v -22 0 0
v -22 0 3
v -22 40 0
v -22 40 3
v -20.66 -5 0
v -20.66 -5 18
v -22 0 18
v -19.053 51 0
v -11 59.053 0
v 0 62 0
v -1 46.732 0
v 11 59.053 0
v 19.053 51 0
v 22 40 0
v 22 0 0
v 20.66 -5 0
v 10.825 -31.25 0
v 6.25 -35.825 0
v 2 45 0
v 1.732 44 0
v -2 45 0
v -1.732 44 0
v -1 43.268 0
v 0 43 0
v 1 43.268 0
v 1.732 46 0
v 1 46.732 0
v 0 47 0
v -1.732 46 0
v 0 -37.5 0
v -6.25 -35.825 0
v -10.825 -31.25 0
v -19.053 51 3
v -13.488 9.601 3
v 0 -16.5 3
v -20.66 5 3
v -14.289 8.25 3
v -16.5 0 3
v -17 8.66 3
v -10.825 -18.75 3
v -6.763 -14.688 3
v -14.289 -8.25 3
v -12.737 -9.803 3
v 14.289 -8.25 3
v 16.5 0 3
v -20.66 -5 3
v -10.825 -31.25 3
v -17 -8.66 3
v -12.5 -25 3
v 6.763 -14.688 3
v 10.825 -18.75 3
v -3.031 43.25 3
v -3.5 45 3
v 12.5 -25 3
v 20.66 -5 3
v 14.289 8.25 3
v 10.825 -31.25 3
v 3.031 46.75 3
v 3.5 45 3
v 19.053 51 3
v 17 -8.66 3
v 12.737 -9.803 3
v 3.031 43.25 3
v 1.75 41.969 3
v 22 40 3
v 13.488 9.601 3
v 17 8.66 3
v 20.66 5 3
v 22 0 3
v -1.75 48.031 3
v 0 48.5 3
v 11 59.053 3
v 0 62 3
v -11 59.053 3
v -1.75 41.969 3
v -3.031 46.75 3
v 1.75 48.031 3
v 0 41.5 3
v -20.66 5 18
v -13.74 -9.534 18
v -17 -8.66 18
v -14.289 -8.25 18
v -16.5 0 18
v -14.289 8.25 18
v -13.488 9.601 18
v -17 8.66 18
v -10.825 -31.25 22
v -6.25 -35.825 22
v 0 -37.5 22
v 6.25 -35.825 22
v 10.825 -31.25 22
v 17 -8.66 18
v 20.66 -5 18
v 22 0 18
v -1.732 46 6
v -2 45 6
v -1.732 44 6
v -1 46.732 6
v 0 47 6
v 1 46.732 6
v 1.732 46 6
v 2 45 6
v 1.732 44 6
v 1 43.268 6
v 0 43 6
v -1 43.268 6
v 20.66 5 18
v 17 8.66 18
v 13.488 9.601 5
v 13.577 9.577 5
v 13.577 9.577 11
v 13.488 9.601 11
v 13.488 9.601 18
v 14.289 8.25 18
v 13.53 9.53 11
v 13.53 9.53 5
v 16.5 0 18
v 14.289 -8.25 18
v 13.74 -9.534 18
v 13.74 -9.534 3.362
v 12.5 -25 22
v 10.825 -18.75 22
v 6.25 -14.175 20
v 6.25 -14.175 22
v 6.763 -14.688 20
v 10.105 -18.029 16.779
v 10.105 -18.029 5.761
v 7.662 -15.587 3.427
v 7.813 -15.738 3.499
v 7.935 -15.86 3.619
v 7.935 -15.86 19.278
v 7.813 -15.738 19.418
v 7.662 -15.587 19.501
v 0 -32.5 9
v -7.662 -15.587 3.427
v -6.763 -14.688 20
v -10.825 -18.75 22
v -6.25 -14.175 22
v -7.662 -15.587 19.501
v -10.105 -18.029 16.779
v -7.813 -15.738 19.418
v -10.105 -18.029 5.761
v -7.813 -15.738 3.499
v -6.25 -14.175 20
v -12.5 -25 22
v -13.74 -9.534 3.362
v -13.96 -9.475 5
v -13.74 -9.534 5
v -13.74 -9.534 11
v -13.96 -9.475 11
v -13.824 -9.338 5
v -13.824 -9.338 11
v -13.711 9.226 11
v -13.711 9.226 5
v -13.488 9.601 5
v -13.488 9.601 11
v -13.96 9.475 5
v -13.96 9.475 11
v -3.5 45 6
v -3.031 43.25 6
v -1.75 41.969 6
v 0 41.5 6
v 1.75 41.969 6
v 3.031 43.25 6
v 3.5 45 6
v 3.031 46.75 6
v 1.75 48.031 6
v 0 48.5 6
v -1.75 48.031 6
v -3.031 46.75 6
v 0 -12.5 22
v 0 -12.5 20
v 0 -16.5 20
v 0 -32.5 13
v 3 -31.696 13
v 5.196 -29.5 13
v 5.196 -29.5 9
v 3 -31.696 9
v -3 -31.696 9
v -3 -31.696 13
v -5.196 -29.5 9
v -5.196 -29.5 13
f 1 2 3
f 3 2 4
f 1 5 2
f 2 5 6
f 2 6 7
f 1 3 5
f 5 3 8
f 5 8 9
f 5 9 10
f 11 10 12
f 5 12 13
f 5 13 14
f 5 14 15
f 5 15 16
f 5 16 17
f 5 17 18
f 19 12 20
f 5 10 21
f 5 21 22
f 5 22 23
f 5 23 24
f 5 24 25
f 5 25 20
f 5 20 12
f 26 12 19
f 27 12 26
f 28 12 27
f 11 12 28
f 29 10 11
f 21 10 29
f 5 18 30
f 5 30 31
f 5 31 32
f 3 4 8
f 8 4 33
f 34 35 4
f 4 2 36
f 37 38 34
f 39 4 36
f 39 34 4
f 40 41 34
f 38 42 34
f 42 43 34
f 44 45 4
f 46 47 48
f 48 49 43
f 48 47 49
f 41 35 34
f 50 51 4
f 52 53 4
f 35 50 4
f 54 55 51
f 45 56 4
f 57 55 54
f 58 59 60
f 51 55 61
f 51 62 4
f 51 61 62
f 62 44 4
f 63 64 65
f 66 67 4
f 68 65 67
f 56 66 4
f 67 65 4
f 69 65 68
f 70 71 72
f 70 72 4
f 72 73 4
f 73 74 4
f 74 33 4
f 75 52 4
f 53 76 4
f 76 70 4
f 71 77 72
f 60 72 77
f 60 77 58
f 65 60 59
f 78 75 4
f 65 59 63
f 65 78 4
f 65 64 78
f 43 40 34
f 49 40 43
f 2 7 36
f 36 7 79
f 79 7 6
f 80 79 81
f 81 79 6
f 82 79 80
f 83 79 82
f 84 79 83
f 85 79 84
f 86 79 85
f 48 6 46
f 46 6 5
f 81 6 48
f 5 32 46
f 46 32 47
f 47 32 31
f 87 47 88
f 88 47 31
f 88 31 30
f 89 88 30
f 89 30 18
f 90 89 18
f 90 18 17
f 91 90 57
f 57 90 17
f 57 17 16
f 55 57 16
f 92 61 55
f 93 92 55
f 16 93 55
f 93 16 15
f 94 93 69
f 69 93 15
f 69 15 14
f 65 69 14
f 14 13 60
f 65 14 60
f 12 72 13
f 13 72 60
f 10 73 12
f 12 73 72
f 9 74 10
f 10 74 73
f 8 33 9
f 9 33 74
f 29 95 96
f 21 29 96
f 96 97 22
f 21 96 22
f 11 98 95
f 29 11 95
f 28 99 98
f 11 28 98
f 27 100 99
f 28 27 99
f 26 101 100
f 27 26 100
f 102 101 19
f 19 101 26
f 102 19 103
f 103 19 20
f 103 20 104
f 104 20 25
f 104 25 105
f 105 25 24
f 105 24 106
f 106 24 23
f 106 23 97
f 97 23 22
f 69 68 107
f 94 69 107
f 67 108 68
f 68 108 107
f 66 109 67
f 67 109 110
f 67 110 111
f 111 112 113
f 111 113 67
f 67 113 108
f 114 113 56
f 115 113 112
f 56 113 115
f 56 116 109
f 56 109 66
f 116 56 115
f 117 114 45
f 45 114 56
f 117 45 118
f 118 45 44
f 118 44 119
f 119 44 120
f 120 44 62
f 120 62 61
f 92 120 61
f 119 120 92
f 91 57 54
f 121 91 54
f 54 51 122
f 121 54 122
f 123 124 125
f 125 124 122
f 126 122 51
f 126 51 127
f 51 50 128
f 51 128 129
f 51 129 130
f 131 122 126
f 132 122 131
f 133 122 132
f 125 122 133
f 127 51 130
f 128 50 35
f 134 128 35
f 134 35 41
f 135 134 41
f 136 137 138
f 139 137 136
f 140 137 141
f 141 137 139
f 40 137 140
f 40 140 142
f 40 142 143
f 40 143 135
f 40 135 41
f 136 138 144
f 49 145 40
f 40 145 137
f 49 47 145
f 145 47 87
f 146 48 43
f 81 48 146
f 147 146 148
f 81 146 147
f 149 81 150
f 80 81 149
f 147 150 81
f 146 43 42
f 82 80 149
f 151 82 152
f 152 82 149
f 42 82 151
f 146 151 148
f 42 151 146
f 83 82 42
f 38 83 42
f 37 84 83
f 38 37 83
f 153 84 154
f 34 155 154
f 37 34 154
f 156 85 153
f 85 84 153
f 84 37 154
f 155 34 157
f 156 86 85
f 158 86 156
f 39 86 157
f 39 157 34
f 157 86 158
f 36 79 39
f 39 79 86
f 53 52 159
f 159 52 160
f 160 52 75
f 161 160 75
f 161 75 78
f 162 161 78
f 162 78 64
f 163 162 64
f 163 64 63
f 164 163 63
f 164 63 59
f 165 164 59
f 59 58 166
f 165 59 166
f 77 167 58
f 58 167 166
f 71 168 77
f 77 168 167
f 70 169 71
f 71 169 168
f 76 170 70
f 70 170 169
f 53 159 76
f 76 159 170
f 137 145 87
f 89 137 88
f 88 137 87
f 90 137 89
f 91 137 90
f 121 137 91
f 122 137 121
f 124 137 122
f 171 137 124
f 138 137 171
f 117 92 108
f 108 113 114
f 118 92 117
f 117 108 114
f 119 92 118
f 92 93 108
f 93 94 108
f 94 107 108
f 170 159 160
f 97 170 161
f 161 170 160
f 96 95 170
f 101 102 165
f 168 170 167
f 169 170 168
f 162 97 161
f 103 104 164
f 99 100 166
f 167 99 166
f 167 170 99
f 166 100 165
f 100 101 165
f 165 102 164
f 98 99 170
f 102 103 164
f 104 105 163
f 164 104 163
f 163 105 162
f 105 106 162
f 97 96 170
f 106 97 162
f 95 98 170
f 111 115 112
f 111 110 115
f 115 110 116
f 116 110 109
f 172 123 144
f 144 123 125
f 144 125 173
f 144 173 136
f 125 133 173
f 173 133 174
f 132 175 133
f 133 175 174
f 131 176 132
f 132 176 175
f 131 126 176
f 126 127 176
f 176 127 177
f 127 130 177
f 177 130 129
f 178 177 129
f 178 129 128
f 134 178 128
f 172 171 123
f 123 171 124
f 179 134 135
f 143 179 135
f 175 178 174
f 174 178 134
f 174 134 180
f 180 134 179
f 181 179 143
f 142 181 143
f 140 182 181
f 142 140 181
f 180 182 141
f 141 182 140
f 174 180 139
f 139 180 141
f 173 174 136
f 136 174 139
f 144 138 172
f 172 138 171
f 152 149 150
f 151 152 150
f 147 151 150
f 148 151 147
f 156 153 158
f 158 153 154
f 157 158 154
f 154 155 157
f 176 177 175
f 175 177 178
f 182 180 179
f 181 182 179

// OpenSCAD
$fn = 12;
mount();
//quad();

module mount() {
	base();

	difference() {
		hooks();
		rotate([0, 0, 180])
		quad();
	}

	module base() {
		difference() {
			union() {
				hull() {
						translate([0, -25, 0])
						cylinder(h=3, d=25);

						translate([12, 0, 0])
						cylinder(h=3, d=20);

						translate([-12, 0, 0])
						cylinder(h=3, d=20);

						translate([0, 40, 0])
						cylinder(h=3, d=44);
				}

				translate([0, 45, 0])
				cylinder(h=6, d=7);
			}

			translate([0, 45, -0.5])
			cylinder(h=7, d=4);
		}
	}

	module hooks() {
		translate([0, -25, 0])
		cylinder(h=22, d=25);

		translate([12, 0, 0])
		cylinder(h=18, d=20);

		translate([-12, 0, 0])
		cylinder(h=18, d=20);
	}
}


module quad() {
	pillar_width=9;
	pillar_distance=75;

	translate([-pillar_distance/2, -pillar_distance/2, 0])
	union() {
		body();

		translate([pillar_width/2, pillar_width/2, 0])
		pillar();

		translate([pillar_distance-pillar_width/2, pillar_width/2, 0])
		pillar();

		translate([pillar_distance-pillar_width/2, pillar_distance-pillar_width/2, 0])
		pillar();

		translate([pillar_width/2, pillar_distance-pillar_width/2, 0])
		pillar();
	}

	module prop() {
		translate([0, 0, 4])
		sphere(d=4);
		rotate([0, 0, 45])
		translate([0, -49/2, 0])
		hull() {
			cylinder(h=3, d=9);
			translate([0, 58-9, 0])
			cylinder(h=3, d=9);
		}
	}

	module pillar() {
		cylinder(h=11, d=pillar_width);
		cylinder(h=23, d=8);
		translate([0, 0, 23])
		prop();
		%translate([0, 0, 8]) cylinder(h=20, d=70);
	}

	module body() {
		hull() {
			translate([pillar_distance/2, pillar_distance/2, 3])
			cylinder(h=17, d=33);

			translate([pillar_distance/2, 9+4, 3])
			cylinder(h=10, d=8);

			translate([pillar_distance/2, 75-11, 9])
			cylinder(h=4, d=12);
		}

		translate([2, 6, 11-6])
		rotate([0, 0, -45])
		cube([6, 95, 6]);

		translate([69, 2, 11-6])
		rotate([0, 0, 45])
		cube([6, 95, 6]);
	}
}
